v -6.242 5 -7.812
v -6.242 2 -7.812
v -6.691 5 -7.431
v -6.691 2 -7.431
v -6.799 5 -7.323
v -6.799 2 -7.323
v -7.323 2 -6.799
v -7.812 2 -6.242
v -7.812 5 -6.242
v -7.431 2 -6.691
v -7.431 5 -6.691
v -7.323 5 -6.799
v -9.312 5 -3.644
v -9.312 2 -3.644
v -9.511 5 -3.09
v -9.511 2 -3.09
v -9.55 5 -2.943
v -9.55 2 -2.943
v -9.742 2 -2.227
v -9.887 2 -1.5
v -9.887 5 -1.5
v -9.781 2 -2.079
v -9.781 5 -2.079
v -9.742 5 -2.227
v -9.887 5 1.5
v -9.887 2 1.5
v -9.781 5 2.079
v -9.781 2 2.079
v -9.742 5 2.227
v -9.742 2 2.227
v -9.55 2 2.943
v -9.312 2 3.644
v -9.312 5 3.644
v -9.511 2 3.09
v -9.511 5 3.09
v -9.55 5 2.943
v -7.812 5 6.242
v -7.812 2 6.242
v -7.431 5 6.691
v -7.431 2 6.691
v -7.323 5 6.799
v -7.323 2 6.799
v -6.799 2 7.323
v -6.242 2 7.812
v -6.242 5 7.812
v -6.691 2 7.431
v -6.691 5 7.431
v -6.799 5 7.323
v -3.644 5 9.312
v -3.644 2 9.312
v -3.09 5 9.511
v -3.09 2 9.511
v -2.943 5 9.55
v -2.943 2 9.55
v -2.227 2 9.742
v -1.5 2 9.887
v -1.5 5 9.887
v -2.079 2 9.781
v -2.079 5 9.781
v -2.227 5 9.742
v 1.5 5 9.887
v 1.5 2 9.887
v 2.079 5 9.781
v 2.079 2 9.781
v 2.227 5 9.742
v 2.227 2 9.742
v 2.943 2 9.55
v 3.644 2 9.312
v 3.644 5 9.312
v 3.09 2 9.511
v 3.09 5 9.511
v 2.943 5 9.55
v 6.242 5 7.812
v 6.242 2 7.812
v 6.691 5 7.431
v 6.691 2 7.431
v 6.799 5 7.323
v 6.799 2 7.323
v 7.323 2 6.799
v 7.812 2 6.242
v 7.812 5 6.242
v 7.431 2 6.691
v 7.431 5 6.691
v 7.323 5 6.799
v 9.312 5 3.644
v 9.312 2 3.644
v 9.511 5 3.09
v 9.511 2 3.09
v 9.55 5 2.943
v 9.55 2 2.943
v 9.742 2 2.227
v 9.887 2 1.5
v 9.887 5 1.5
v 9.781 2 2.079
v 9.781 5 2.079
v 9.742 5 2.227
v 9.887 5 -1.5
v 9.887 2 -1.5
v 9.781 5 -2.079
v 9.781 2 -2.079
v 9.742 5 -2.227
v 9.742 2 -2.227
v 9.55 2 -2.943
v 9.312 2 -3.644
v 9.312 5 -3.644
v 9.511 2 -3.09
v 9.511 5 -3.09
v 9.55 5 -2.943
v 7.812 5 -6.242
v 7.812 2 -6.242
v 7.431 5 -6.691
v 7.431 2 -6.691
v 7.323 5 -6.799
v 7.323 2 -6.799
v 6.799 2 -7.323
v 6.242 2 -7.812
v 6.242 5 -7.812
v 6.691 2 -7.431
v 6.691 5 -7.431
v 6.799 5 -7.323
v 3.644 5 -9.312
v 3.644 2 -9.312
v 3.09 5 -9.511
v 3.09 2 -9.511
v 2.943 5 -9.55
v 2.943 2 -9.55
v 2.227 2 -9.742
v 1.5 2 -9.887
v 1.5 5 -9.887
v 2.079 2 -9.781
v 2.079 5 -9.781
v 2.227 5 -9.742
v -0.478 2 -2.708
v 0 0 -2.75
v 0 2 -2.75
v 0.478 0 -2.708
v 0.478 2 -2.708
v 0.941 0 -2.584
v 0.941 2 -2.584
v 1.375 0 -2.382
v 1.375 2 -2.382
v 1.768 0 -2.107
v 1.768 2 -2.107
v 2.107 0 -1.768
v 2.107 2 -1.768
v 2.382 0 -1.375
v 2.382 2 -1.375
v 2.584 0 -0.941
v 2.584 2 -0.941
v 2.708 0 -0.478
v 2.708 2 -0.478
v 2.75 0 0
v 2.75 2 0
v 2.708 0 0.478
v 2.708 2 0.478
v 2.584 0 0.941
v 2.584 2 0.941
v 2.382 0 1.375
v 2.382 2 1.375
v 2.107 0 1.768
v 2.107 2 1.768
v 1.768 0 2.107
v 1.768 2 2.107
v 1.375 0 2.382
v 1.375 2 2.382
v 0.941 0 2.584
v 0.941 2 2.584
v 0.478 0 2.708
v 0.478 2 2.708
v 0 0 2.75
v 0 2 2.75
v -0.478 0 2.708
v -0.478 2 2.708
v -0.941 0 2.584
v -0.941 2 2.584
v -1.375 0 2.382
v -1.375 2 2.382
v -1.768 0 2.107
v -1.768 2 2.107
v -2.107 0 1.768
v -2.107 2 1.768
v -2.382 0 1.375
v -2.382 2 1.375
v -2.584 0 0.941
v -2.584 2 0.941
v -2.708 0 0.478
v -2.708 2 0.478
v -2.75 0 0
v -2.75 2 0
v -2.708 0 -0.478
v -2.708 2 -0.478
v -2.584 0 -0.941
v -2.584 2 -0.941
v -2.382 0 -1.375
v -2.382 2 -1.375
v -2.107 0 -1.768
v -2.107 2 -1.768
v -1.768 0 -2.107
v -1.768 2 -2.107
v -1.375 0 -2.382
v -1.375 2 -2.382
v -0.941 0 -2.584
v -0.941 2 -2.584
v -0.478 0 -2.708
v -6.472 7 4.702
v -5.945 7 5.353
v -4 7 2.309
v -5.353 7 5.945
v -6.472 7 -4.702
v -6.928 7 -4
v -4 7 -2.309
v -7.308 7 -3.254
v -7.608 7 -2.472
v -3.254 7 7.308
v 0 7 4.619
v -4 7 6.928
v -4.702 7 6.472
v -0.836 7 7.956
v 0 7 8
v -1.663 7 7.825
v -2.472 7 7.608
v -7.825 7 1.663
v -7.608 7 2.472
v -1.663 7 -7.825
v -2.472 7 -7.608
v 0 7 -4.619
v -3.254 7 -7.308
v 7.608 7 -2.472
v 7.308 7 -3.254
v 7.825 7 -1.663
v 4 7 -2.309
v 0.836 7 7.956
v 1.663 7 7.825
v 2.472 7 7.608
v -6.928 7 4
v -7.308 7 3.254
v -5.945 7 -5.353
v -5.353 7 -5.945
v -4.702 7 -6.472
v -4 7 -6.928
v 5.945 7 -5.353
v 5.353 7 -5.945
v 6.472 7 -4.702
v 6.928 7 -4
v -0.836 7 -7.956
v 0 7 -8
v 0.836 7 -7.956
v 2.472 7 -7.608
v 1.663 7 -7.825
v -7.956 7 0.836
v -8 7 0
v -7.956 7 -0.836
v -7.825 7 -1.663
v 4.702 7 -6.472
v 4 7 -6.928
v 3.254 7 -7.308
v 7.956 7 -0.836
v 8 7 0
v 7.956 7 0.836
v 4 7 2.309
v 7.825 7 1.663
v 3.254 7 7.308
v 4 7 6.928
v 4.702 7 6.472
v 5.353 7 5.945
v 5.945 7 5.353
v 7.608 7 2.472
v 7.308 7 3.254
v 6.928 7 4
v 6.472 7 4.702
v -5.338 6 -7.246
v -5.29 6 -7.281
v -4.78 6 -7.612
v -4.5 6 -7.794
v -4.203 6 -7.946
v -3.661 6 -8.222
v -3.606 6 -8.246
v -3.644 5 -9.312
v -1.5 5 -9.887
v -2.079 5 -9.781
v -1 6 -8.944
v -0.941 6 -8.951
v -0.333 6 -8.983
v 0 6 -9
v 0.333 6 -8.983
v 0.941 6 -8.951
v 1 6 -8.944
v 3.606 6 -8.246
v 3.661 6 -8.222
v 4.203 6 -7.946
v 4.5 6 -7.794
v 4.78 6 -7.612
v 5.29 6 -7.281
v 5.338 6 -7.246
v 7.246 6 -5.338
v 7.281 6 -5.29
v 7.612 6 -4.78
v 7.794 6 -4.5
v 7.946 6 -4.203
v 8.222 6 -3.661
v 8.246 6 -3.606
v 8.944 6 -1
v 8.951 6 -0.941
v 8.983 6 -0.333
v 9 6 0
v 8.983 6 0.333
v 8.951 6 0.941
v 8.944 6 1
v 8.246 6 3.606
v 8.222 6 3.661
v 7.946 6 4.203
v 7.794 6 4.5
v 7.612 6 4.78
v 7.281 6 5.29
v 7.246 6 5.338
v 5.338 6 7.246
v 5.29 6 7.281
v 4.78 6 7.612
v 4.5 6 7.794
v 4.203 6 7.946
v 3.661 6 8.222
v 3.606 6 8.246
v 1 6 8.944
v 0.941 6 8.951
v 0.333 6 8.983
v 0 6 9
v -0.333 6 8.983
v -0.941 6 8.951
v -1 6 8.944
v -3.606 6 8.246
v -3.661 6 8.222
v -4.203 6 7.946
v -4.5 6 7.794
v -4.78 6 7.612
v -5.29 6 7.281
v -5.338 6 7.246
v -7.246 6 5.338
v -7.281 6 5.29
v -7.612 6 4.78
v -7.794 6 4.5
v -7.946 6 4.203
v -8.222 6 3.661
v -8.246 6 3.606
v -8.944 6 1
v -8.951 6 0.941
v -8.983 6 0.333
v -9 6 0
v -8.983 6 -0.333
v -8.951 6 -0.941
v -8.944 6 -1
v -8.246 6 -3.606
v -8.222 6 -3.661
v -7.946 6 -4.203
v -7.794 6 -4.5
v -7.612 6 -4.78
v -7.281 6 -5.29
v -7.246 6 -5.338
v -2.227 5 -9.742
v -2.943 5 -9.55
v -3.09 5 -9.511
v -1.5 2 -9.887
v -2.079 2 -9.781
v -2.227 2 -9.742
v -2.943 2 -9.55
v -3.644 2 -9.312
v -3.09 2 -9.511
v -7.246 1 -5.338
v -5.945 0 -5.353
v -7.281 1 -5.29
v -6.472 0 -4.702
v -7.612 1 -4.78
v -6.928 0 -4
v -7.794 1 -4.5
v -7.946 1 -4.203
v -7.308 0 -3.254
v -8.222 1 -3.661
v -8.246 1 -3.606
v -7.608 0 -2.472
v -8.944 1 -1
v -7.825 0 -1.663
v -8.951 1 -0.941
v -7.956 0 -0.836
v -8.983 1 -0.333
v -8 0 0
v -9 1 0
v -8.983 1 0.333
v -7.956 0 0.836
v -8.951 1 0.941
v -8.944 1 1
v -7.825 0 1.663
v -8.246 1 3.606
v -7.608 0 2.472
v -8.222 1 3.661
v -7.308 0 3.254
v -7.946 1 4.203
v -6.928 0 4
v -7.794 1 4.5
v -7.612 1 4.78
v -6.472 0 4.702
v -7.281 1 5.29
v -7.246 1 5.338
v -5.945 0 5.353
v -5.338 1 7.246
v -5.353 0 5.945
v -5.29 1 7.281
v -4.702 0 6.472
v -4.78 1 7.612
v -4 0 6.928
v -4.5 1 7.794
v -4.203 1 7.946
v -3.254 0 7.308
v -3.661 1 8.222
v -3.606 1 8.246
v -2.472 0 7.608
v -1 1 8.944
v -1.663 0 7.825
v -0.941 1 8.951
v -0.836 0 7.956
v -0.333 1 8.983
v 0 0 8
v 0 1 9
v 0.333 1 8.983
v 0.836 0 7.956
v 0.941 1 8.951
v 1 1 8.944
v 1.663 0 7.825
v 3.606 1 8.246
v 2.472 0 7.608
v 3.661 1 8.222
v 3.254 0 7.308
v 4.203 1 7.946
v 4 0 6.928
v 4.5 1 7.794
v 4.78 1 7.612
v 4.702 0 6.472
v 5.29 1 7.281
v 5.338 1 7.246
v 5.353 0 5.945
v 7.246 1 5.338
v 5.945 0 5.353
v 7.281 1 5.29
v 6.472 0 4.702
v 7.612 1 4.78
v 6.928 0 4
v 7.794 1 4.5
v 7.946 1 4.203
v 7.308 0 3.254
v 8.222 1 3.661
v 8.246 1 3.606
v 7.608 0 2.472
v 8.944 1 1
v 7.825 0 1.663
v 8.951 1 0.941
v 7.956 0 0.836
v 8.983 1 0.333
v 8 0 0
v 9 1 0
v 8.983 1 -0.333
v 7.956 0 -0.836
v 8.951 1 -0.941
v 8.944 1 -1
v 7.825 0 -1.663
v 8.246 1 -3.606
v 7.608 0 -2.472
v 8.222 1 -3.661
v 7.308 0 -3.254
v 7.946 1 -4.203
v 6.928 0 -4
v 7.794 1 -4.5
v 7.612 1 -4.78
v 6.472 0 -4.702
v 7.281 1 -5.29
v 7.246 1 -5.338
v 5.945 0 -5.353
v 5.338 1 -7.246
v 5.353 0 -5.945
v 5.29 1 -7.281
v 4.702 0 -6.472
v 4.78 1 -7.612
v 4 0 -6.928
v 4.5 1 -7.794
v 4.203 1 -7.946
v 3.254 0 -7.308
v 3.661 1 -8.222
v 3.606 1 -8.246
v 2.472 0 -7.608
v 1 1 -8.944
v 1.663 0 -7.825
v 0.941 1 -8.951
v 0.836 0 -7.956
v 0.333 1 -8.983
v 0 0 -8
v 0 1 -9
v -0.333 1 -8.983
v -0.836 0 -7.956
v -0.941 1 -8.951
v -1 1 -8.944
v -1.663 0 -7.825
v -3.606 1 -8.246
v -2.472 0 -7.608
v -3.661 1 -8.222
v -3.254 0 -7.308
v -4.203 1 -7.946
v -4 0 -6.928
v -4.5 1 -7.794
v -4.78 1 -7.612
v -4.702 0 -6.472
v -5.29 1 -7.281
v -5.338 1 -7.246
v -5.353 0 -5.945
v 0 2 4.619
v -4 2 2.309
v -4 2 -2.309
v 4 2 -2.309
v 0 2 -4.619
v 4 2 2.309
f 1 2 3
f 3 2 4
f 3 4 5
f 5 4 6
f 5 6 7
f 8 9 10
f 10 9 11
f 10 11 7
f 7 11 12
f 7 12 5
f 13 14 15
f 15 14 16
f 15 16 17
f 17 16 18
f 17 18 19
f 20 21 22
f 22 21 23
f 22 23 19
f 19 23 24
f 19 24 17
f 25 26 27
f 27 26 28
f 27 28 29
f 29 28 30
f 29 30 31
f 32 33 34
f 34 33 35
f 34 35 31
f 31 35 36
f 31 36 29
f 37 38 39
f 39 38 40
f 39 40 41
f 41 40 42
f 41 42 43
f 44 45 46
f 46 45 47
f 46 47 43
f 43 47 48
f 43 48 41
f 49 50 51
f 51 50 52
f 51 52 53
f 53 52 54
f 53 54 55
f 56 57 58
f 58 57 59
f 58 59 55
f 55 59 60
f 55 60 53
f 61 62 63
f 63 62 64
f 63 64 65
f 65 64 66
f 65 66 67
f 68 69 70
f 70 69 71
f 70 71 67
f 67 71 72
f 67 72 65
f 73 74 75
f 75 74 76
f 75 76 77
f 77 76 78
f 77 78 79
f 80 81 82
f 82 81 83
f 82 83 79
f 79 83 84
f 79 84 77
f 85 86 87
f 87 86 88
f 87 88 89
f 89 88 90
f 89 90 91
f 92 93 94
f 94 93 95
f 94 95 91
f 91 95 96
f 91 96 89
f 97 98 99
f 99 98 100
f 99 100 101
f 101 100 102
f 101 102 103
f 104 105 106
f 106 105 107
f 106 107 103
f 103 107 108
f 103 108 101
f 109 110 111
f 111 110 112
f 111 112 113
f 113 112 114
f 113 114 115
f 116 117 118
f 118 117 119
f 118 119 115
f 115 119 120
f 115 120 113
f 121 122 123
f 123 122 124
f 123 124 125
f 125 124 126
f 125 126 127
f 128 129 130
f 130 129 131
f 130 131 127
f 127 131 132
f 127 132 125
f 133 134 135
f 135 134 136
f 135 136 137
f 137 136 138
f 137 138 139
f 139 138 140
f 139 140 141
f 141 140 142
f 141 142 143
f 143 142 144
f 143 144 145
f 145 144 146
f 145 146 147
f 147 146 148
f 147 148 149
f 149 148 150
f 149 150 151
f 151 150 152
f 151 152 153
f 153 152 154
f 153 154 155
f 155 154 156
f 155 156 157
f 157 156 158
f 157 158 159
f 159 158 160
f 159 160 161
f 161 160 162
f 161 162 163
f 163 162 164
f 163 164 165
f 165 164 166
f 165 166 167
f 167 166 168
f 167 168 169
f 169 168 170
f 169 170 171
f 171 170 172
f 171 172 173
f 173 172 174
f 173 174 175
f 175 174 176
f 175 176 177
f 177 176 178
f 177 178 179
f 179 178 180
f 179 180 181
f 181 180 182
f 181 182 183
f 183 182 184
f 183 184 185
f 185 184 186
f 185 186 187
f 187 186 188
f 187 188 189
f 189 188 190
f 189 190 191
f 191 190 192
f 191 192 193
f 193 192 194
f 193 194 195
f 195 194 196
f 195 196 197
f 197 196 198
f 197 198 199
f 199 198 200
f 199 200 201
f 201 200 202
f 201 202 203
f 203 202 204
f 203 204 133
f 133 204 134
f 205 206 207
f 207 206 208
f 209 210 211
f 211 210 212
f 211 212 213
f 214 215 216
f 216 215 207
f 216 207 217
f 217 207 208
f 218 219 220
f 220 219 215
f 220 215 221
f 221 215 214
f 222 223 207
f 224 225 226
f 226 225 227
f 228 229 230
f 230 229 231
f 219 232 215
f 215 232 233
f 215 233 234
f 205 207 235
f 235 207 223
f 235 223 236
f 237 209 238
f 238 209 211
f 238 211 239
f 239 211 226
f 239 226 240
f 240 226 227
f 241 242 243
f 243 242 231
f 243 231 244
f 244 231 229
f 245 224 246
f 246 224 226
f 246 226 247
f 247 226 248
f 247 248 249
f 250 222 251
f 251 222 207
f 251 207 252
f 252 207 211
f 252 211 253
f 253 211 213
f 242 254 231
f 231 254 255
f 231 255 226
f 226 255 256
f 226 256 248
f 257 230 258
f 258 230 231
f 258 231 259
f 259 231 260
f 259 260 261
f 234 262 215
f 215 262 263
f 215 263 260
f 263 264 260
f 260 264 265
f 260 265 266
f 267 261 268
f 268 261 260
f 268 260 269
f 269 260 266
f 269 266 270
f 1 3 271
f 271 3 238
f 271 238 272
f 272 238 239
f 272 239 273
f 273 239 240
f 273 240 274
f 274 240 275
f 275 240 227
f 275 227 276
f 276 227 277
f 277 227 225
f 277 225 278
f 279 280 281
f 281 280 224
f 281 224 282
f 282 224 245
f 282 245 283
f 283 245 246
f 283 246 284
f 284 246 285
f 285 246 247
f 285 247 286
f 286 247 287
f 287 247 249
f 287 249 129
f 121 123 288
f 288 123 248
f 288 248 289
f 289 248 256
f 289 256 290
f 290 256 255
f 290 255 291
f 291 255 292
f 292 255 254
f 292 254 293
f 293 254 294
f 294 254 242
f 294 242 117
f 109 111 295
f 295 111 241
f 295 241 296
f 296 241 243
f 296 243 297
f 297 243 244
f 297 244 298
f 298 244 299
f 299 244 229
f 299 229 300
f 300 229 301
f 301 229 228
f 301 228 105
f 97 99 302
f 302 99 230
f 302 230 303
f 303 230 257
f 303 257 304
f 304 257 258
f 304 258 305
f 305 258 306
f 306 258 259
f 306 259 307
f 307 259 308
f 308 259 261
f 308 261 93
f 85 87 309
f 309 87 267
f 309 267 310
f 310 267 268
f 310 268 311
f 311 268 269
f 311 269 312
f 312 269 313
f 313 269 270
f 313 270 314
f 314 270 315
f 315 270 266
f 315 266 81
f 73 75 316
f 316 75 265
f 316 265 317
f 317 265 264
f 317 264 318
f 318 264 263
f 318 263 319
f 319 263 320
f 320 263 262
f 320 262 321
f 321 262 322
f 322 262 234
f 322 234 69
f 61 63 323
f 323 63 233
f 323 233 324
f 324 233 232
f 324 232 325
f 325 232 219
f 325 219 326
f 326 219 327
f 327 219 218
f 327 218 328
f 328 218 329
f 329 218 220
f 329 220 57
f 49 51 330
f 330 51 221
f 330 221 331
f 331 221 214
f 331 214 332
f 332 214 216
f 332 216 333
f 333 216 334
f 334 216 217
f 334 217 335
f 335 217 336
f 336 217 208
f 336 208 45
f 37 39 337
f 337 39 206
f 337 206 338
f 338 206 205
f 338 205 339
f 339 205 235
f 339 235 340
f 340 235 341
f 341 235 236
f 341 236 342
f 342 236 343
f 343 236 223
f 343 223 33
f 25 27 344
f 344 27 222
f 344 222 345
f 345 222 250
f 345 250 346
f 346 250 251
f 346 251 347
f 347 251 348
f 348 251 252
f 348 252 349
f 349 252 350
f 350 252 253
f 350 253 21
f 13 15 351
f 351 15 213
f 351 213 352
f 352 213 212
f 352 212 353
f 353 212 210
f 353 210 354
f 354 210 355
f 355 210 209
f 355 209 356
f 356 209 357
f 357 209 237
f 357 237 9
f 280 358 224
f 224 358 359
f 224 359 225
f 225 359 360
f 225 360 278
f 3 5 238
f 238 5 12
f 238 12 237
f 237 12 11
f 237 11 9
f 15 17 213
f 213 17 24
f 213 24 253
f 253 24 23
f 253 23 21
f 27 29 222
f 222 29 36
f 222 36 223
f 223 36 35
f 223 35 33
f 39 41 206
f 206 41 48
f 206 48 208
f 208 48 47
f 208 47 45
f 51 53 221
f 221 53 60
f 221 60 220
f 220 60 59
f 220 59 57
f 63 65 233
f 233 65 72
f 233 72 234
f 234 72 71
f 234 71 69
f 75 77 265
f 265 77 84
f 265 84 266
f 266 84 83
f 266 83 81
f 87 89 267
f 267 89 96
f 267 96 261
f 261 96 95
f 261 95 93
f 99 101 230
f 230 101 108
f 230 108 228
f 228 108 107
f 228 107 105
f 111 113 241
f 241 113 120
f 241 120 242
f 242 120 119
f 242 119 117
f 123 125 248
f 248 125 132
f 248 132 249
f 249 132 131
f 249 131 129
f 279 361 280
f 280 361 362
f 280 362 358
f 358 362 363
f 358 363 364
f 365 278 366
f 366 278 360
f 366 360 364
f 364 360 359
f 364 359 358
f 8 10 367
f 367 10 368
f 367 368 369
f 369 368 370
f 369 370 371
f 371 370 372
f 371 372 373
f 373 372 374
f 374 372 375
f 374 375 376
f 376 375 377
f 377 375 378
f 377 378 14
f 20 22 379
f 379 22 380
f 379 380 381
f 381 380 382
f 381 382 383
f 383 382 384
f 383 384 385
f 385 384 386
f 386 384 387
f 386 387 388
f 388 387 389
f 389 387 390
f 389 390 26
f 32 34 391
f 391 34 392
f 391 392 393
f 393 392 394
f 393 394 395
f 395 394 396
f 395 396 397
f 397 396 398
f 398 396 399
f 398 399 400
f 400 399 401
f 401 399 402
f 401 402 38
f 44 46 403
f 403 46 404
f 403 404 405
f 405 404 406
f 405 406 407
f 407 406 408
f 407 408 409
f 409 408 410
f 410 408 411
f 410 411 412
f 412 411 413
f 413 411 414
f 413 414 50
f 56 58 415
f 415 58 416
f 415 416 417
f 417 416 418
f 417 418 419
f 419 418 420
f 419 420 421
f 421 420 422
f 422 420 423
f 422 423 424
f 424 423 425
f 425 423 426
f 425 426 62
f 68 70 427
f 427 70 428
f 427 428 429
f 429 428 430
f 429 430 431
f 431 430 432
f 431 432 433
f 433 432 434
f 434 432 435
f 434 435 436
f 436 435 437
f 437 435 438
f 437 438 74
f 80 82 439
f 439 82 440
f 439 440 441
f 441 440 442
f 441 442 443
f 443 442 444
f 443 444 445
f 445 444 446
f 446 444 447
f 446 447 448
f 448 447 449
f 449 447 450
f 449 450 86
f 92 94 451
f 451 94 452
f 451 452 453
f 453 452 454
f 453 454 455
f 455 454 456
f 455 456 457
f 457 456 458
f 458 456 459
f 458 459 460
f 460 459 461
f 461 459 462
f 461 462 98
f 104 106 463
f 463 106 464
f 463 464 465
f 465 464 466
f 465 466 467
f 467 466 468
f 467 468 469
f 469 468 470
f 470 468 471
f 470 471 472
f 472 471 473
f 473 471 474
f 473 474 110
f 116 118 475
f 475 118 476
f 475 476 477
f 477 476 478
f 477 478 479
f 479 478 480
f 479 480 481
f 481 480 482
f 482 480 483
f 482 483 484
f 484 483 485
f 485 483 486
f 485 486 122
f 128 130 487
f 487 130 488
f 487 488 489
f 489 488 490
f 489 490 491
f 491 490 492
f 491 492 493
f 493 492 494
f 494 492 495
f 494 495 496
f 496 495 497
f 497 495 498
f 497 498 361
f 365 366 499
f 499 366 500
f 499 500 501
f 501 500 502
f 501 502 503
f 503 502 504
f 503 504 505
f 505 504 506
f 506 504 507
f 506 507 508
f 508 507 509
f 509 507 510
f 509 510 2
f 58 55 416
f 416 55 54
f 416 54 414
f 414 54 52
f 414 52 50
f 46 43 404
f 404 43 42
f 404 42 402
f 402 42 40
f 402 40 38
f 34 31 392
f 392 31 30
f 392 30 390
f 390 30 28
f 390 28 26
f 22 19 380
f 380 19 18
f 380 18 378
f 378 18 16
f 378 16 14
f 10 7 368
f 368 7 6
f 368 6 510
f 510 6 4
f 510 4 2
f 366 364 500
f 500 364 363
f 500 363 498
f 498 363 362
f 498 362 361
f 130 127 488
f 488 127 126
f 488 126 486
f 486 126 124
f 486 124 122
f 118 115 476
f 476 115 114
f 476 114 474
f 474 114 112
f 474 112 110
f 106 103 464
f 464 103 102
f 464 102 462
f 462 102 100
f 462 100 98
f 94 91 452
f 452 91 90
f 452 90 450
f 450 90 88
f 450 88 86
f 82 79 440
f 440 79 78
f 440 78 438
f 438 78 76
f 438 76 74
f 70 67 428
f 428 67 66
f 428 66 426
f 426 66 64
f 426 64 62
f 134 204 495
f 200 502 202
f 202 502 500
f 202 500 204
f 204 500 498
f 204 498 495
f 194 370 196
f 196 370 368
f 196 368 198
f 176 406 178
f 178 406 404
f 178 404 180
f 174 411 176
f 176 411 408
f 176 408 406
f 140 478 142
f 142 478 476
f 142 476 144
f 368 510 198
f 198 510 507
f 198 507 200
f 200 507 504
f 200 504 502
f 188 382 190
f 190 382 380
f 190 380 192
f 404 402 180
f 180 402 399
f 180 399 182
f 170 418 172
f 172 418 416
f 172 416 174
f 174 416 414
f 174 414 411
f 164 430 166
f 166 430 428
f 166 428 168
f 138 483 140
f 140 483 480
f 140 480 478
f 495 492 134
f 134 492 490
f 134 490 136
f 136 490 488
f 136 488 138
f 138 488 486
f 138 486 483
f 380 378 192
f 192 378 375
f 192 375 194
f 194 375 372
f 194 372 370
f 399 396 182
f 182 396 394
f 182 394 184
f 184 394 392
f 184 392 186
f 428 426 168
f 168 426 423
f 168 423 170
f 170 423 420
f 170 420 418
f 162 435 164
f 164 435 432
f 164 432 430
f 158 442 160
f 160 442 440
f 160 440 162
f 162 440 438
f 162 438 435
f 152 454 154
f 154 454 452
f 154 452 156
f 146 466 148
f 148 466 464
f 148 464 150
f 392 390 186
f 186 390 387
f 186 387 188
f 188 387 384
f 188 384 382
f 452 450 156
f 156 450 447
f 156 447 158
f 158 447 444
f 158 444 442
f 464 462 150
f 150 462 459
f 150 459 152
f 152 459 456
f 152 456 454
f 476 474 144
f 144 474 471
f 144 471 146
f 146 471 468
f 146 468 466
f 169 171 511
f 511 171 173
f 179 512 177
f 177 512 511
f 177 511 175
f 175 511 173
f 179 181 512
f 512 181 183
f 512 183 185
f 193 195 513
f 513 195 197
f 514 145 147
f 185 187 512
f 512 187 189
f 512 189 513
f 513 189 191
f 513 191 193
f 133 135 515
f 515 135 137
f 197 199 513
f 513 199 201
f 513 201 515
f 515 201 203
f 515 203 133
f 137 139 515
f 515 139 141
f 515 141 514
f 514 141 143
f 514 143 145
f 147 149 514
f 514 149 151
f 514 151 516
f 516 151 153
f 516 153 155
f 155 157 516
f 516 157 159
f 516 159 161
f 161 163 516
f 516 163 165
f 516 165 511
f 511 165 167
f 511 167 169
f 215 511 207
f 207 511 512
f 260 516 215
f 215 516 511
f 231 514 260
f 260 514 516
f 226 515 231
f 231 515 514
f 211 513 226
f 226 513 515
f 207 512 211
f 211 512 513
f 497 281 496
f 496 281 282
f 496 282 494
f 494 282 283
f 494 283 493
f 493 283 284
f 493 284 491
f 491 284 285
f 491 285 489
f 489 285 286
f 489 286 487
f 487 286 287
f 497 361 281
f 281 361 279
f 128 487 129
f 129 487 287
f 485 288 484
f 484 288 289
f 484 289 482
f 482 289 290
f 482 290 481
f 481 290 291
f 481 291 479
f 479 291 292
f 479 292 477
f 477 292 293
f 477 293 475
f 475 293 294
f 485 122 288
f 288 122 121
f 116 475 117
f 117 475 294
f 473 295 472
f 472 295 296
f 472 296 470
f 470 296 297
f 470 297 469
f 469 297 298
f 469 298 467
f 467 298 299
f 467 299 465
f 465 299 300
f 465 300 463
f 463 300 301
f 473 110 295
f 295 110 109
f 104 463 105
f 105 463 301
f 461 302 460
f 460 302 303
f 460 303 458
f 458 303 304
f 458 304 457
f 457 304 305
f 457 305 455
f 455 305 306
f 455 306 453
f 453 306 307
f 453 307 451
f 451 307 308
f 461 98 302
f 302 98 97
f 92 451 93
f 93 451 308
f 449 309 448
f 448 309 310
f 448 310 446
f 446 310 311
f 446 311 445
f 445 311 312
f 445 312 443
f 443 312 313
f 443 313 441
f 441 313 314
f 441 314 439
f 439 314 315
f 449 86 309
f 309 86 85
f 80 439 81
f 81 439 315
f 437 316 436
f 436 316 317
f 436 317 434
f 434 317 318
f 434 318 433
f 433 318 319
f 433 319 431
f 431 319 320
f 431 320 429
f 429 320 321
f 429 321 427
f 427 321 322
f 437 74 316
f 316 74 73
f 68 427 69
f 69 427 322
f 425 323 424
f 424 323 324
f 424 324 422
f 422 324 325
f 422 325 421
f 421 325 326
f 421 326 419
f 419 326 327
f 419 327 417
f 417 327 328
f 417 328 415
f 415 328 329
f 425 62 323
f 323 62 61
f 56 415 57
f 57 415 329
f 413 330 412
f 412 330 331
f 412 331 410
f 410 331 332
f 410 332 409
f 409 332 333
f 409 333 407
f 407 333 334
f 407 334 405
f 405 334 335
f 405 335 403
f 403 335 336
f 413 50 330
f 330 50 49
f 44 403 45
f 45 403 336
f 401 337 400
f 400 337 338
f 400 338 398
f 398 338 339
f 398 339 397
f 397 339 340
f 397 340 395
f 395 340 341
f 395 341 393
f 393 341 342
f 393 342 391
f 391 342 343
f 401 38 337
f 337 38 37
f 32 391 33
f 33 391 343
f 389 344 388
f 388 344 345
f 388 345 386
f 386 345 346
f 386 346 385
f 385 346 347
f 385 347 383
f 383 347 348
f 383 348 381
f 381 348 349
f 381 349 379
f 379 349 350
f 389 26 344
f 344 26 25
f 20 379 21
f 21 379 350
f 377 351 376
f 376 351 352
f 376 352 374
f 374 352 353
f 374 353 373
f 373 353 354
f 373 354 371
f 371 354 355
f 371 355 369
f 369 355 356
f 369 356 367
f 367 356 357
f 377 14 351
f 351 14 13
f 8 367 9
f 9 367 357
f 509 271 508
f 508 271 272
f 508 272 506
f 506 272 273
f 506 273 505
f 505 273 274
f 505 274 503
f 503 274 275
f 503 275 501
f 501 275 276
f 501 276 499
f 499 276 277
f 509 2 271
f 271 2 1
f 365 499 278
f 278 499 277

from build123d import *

# Parameters (mm, degrees)
ODEBRAT_VYSUNUT_M1_DEPTH = 5
ODEBRAT_VYSUNUT_M2_DEPTH = 8
KRUHOV_POLE1_COUNT       = 12


with BuildPart() as part:
    # Skica1 → Rotovat1 (revolve)
    with BuildSketch(Plane(origin=(0, 0, 0), x_dir=(0, 0, -1), z_dir=(1, 0, 0))):
        Polygon((2.75, 0), (8, 0), (10, 2), (10, 5), (8, 7), (2.75, 7), align=None)
    revolve(axis=Axis((0, 0, 0), (0, 1, 0)))

    # Skica2 → Odebrat vysunutím1 (cut)
    with BuildSketch(Plane(origin=(0, 7, 0), x_dir=(1, 0, 0), z_dir=(0, 1, 0))):
        Polygon((-4, -2.309401077), (0, -4.618802154), (4, -2.309401077), (4, 2.309401077), (0, 4.618802154), (-4, 2.309401077), align=None)
    extrude(amount=-ODEBRAT_VYSUNUT_M1_DEPTH, mode=Mode.SUBTRACT)

    # Skica3 → Odebrat vysunutím2 (cut, through all)
    with BuildSketch(Plane(origin=(0, 7, 0), x_dir=(1, 0, 0), z_dir=(0, 1, 0))):
        with BuildLine():
            Line((-1, 8.94427191), (-1.5, 9.886859967))
            ThreePointArc((-1.5, 9.886859967), (0, 10), (1.5, 9.886859967))
            Line((1.5, 9.886859967), (1, 8.94427191))
            ThreePointArc((1, 8.94427191), (0, 9), (-1, 8.94427191))
        make_face()
    odebrat_vysunut_m2 = extrude(amount=-ODEBRAT_VYSUNUT_M2_DEPTH, mode=Mode.SUBTRACT)

    # Kruhové pole1: Odebrat vysunutím2 ×12 about axis
    kruhov_pole1_axis = Axis((0, 0, 0), (0, 1, 0))
    for i in range(1, KRUHOV_POLE1_COUNT):
        add(odebrat_vysunut_m2.rotate(kruhov_pole1_axis, i * 360 / KRUHOV_POLE1_COUNT), mode=Mode.SUBTRACT)


solid = part.part
